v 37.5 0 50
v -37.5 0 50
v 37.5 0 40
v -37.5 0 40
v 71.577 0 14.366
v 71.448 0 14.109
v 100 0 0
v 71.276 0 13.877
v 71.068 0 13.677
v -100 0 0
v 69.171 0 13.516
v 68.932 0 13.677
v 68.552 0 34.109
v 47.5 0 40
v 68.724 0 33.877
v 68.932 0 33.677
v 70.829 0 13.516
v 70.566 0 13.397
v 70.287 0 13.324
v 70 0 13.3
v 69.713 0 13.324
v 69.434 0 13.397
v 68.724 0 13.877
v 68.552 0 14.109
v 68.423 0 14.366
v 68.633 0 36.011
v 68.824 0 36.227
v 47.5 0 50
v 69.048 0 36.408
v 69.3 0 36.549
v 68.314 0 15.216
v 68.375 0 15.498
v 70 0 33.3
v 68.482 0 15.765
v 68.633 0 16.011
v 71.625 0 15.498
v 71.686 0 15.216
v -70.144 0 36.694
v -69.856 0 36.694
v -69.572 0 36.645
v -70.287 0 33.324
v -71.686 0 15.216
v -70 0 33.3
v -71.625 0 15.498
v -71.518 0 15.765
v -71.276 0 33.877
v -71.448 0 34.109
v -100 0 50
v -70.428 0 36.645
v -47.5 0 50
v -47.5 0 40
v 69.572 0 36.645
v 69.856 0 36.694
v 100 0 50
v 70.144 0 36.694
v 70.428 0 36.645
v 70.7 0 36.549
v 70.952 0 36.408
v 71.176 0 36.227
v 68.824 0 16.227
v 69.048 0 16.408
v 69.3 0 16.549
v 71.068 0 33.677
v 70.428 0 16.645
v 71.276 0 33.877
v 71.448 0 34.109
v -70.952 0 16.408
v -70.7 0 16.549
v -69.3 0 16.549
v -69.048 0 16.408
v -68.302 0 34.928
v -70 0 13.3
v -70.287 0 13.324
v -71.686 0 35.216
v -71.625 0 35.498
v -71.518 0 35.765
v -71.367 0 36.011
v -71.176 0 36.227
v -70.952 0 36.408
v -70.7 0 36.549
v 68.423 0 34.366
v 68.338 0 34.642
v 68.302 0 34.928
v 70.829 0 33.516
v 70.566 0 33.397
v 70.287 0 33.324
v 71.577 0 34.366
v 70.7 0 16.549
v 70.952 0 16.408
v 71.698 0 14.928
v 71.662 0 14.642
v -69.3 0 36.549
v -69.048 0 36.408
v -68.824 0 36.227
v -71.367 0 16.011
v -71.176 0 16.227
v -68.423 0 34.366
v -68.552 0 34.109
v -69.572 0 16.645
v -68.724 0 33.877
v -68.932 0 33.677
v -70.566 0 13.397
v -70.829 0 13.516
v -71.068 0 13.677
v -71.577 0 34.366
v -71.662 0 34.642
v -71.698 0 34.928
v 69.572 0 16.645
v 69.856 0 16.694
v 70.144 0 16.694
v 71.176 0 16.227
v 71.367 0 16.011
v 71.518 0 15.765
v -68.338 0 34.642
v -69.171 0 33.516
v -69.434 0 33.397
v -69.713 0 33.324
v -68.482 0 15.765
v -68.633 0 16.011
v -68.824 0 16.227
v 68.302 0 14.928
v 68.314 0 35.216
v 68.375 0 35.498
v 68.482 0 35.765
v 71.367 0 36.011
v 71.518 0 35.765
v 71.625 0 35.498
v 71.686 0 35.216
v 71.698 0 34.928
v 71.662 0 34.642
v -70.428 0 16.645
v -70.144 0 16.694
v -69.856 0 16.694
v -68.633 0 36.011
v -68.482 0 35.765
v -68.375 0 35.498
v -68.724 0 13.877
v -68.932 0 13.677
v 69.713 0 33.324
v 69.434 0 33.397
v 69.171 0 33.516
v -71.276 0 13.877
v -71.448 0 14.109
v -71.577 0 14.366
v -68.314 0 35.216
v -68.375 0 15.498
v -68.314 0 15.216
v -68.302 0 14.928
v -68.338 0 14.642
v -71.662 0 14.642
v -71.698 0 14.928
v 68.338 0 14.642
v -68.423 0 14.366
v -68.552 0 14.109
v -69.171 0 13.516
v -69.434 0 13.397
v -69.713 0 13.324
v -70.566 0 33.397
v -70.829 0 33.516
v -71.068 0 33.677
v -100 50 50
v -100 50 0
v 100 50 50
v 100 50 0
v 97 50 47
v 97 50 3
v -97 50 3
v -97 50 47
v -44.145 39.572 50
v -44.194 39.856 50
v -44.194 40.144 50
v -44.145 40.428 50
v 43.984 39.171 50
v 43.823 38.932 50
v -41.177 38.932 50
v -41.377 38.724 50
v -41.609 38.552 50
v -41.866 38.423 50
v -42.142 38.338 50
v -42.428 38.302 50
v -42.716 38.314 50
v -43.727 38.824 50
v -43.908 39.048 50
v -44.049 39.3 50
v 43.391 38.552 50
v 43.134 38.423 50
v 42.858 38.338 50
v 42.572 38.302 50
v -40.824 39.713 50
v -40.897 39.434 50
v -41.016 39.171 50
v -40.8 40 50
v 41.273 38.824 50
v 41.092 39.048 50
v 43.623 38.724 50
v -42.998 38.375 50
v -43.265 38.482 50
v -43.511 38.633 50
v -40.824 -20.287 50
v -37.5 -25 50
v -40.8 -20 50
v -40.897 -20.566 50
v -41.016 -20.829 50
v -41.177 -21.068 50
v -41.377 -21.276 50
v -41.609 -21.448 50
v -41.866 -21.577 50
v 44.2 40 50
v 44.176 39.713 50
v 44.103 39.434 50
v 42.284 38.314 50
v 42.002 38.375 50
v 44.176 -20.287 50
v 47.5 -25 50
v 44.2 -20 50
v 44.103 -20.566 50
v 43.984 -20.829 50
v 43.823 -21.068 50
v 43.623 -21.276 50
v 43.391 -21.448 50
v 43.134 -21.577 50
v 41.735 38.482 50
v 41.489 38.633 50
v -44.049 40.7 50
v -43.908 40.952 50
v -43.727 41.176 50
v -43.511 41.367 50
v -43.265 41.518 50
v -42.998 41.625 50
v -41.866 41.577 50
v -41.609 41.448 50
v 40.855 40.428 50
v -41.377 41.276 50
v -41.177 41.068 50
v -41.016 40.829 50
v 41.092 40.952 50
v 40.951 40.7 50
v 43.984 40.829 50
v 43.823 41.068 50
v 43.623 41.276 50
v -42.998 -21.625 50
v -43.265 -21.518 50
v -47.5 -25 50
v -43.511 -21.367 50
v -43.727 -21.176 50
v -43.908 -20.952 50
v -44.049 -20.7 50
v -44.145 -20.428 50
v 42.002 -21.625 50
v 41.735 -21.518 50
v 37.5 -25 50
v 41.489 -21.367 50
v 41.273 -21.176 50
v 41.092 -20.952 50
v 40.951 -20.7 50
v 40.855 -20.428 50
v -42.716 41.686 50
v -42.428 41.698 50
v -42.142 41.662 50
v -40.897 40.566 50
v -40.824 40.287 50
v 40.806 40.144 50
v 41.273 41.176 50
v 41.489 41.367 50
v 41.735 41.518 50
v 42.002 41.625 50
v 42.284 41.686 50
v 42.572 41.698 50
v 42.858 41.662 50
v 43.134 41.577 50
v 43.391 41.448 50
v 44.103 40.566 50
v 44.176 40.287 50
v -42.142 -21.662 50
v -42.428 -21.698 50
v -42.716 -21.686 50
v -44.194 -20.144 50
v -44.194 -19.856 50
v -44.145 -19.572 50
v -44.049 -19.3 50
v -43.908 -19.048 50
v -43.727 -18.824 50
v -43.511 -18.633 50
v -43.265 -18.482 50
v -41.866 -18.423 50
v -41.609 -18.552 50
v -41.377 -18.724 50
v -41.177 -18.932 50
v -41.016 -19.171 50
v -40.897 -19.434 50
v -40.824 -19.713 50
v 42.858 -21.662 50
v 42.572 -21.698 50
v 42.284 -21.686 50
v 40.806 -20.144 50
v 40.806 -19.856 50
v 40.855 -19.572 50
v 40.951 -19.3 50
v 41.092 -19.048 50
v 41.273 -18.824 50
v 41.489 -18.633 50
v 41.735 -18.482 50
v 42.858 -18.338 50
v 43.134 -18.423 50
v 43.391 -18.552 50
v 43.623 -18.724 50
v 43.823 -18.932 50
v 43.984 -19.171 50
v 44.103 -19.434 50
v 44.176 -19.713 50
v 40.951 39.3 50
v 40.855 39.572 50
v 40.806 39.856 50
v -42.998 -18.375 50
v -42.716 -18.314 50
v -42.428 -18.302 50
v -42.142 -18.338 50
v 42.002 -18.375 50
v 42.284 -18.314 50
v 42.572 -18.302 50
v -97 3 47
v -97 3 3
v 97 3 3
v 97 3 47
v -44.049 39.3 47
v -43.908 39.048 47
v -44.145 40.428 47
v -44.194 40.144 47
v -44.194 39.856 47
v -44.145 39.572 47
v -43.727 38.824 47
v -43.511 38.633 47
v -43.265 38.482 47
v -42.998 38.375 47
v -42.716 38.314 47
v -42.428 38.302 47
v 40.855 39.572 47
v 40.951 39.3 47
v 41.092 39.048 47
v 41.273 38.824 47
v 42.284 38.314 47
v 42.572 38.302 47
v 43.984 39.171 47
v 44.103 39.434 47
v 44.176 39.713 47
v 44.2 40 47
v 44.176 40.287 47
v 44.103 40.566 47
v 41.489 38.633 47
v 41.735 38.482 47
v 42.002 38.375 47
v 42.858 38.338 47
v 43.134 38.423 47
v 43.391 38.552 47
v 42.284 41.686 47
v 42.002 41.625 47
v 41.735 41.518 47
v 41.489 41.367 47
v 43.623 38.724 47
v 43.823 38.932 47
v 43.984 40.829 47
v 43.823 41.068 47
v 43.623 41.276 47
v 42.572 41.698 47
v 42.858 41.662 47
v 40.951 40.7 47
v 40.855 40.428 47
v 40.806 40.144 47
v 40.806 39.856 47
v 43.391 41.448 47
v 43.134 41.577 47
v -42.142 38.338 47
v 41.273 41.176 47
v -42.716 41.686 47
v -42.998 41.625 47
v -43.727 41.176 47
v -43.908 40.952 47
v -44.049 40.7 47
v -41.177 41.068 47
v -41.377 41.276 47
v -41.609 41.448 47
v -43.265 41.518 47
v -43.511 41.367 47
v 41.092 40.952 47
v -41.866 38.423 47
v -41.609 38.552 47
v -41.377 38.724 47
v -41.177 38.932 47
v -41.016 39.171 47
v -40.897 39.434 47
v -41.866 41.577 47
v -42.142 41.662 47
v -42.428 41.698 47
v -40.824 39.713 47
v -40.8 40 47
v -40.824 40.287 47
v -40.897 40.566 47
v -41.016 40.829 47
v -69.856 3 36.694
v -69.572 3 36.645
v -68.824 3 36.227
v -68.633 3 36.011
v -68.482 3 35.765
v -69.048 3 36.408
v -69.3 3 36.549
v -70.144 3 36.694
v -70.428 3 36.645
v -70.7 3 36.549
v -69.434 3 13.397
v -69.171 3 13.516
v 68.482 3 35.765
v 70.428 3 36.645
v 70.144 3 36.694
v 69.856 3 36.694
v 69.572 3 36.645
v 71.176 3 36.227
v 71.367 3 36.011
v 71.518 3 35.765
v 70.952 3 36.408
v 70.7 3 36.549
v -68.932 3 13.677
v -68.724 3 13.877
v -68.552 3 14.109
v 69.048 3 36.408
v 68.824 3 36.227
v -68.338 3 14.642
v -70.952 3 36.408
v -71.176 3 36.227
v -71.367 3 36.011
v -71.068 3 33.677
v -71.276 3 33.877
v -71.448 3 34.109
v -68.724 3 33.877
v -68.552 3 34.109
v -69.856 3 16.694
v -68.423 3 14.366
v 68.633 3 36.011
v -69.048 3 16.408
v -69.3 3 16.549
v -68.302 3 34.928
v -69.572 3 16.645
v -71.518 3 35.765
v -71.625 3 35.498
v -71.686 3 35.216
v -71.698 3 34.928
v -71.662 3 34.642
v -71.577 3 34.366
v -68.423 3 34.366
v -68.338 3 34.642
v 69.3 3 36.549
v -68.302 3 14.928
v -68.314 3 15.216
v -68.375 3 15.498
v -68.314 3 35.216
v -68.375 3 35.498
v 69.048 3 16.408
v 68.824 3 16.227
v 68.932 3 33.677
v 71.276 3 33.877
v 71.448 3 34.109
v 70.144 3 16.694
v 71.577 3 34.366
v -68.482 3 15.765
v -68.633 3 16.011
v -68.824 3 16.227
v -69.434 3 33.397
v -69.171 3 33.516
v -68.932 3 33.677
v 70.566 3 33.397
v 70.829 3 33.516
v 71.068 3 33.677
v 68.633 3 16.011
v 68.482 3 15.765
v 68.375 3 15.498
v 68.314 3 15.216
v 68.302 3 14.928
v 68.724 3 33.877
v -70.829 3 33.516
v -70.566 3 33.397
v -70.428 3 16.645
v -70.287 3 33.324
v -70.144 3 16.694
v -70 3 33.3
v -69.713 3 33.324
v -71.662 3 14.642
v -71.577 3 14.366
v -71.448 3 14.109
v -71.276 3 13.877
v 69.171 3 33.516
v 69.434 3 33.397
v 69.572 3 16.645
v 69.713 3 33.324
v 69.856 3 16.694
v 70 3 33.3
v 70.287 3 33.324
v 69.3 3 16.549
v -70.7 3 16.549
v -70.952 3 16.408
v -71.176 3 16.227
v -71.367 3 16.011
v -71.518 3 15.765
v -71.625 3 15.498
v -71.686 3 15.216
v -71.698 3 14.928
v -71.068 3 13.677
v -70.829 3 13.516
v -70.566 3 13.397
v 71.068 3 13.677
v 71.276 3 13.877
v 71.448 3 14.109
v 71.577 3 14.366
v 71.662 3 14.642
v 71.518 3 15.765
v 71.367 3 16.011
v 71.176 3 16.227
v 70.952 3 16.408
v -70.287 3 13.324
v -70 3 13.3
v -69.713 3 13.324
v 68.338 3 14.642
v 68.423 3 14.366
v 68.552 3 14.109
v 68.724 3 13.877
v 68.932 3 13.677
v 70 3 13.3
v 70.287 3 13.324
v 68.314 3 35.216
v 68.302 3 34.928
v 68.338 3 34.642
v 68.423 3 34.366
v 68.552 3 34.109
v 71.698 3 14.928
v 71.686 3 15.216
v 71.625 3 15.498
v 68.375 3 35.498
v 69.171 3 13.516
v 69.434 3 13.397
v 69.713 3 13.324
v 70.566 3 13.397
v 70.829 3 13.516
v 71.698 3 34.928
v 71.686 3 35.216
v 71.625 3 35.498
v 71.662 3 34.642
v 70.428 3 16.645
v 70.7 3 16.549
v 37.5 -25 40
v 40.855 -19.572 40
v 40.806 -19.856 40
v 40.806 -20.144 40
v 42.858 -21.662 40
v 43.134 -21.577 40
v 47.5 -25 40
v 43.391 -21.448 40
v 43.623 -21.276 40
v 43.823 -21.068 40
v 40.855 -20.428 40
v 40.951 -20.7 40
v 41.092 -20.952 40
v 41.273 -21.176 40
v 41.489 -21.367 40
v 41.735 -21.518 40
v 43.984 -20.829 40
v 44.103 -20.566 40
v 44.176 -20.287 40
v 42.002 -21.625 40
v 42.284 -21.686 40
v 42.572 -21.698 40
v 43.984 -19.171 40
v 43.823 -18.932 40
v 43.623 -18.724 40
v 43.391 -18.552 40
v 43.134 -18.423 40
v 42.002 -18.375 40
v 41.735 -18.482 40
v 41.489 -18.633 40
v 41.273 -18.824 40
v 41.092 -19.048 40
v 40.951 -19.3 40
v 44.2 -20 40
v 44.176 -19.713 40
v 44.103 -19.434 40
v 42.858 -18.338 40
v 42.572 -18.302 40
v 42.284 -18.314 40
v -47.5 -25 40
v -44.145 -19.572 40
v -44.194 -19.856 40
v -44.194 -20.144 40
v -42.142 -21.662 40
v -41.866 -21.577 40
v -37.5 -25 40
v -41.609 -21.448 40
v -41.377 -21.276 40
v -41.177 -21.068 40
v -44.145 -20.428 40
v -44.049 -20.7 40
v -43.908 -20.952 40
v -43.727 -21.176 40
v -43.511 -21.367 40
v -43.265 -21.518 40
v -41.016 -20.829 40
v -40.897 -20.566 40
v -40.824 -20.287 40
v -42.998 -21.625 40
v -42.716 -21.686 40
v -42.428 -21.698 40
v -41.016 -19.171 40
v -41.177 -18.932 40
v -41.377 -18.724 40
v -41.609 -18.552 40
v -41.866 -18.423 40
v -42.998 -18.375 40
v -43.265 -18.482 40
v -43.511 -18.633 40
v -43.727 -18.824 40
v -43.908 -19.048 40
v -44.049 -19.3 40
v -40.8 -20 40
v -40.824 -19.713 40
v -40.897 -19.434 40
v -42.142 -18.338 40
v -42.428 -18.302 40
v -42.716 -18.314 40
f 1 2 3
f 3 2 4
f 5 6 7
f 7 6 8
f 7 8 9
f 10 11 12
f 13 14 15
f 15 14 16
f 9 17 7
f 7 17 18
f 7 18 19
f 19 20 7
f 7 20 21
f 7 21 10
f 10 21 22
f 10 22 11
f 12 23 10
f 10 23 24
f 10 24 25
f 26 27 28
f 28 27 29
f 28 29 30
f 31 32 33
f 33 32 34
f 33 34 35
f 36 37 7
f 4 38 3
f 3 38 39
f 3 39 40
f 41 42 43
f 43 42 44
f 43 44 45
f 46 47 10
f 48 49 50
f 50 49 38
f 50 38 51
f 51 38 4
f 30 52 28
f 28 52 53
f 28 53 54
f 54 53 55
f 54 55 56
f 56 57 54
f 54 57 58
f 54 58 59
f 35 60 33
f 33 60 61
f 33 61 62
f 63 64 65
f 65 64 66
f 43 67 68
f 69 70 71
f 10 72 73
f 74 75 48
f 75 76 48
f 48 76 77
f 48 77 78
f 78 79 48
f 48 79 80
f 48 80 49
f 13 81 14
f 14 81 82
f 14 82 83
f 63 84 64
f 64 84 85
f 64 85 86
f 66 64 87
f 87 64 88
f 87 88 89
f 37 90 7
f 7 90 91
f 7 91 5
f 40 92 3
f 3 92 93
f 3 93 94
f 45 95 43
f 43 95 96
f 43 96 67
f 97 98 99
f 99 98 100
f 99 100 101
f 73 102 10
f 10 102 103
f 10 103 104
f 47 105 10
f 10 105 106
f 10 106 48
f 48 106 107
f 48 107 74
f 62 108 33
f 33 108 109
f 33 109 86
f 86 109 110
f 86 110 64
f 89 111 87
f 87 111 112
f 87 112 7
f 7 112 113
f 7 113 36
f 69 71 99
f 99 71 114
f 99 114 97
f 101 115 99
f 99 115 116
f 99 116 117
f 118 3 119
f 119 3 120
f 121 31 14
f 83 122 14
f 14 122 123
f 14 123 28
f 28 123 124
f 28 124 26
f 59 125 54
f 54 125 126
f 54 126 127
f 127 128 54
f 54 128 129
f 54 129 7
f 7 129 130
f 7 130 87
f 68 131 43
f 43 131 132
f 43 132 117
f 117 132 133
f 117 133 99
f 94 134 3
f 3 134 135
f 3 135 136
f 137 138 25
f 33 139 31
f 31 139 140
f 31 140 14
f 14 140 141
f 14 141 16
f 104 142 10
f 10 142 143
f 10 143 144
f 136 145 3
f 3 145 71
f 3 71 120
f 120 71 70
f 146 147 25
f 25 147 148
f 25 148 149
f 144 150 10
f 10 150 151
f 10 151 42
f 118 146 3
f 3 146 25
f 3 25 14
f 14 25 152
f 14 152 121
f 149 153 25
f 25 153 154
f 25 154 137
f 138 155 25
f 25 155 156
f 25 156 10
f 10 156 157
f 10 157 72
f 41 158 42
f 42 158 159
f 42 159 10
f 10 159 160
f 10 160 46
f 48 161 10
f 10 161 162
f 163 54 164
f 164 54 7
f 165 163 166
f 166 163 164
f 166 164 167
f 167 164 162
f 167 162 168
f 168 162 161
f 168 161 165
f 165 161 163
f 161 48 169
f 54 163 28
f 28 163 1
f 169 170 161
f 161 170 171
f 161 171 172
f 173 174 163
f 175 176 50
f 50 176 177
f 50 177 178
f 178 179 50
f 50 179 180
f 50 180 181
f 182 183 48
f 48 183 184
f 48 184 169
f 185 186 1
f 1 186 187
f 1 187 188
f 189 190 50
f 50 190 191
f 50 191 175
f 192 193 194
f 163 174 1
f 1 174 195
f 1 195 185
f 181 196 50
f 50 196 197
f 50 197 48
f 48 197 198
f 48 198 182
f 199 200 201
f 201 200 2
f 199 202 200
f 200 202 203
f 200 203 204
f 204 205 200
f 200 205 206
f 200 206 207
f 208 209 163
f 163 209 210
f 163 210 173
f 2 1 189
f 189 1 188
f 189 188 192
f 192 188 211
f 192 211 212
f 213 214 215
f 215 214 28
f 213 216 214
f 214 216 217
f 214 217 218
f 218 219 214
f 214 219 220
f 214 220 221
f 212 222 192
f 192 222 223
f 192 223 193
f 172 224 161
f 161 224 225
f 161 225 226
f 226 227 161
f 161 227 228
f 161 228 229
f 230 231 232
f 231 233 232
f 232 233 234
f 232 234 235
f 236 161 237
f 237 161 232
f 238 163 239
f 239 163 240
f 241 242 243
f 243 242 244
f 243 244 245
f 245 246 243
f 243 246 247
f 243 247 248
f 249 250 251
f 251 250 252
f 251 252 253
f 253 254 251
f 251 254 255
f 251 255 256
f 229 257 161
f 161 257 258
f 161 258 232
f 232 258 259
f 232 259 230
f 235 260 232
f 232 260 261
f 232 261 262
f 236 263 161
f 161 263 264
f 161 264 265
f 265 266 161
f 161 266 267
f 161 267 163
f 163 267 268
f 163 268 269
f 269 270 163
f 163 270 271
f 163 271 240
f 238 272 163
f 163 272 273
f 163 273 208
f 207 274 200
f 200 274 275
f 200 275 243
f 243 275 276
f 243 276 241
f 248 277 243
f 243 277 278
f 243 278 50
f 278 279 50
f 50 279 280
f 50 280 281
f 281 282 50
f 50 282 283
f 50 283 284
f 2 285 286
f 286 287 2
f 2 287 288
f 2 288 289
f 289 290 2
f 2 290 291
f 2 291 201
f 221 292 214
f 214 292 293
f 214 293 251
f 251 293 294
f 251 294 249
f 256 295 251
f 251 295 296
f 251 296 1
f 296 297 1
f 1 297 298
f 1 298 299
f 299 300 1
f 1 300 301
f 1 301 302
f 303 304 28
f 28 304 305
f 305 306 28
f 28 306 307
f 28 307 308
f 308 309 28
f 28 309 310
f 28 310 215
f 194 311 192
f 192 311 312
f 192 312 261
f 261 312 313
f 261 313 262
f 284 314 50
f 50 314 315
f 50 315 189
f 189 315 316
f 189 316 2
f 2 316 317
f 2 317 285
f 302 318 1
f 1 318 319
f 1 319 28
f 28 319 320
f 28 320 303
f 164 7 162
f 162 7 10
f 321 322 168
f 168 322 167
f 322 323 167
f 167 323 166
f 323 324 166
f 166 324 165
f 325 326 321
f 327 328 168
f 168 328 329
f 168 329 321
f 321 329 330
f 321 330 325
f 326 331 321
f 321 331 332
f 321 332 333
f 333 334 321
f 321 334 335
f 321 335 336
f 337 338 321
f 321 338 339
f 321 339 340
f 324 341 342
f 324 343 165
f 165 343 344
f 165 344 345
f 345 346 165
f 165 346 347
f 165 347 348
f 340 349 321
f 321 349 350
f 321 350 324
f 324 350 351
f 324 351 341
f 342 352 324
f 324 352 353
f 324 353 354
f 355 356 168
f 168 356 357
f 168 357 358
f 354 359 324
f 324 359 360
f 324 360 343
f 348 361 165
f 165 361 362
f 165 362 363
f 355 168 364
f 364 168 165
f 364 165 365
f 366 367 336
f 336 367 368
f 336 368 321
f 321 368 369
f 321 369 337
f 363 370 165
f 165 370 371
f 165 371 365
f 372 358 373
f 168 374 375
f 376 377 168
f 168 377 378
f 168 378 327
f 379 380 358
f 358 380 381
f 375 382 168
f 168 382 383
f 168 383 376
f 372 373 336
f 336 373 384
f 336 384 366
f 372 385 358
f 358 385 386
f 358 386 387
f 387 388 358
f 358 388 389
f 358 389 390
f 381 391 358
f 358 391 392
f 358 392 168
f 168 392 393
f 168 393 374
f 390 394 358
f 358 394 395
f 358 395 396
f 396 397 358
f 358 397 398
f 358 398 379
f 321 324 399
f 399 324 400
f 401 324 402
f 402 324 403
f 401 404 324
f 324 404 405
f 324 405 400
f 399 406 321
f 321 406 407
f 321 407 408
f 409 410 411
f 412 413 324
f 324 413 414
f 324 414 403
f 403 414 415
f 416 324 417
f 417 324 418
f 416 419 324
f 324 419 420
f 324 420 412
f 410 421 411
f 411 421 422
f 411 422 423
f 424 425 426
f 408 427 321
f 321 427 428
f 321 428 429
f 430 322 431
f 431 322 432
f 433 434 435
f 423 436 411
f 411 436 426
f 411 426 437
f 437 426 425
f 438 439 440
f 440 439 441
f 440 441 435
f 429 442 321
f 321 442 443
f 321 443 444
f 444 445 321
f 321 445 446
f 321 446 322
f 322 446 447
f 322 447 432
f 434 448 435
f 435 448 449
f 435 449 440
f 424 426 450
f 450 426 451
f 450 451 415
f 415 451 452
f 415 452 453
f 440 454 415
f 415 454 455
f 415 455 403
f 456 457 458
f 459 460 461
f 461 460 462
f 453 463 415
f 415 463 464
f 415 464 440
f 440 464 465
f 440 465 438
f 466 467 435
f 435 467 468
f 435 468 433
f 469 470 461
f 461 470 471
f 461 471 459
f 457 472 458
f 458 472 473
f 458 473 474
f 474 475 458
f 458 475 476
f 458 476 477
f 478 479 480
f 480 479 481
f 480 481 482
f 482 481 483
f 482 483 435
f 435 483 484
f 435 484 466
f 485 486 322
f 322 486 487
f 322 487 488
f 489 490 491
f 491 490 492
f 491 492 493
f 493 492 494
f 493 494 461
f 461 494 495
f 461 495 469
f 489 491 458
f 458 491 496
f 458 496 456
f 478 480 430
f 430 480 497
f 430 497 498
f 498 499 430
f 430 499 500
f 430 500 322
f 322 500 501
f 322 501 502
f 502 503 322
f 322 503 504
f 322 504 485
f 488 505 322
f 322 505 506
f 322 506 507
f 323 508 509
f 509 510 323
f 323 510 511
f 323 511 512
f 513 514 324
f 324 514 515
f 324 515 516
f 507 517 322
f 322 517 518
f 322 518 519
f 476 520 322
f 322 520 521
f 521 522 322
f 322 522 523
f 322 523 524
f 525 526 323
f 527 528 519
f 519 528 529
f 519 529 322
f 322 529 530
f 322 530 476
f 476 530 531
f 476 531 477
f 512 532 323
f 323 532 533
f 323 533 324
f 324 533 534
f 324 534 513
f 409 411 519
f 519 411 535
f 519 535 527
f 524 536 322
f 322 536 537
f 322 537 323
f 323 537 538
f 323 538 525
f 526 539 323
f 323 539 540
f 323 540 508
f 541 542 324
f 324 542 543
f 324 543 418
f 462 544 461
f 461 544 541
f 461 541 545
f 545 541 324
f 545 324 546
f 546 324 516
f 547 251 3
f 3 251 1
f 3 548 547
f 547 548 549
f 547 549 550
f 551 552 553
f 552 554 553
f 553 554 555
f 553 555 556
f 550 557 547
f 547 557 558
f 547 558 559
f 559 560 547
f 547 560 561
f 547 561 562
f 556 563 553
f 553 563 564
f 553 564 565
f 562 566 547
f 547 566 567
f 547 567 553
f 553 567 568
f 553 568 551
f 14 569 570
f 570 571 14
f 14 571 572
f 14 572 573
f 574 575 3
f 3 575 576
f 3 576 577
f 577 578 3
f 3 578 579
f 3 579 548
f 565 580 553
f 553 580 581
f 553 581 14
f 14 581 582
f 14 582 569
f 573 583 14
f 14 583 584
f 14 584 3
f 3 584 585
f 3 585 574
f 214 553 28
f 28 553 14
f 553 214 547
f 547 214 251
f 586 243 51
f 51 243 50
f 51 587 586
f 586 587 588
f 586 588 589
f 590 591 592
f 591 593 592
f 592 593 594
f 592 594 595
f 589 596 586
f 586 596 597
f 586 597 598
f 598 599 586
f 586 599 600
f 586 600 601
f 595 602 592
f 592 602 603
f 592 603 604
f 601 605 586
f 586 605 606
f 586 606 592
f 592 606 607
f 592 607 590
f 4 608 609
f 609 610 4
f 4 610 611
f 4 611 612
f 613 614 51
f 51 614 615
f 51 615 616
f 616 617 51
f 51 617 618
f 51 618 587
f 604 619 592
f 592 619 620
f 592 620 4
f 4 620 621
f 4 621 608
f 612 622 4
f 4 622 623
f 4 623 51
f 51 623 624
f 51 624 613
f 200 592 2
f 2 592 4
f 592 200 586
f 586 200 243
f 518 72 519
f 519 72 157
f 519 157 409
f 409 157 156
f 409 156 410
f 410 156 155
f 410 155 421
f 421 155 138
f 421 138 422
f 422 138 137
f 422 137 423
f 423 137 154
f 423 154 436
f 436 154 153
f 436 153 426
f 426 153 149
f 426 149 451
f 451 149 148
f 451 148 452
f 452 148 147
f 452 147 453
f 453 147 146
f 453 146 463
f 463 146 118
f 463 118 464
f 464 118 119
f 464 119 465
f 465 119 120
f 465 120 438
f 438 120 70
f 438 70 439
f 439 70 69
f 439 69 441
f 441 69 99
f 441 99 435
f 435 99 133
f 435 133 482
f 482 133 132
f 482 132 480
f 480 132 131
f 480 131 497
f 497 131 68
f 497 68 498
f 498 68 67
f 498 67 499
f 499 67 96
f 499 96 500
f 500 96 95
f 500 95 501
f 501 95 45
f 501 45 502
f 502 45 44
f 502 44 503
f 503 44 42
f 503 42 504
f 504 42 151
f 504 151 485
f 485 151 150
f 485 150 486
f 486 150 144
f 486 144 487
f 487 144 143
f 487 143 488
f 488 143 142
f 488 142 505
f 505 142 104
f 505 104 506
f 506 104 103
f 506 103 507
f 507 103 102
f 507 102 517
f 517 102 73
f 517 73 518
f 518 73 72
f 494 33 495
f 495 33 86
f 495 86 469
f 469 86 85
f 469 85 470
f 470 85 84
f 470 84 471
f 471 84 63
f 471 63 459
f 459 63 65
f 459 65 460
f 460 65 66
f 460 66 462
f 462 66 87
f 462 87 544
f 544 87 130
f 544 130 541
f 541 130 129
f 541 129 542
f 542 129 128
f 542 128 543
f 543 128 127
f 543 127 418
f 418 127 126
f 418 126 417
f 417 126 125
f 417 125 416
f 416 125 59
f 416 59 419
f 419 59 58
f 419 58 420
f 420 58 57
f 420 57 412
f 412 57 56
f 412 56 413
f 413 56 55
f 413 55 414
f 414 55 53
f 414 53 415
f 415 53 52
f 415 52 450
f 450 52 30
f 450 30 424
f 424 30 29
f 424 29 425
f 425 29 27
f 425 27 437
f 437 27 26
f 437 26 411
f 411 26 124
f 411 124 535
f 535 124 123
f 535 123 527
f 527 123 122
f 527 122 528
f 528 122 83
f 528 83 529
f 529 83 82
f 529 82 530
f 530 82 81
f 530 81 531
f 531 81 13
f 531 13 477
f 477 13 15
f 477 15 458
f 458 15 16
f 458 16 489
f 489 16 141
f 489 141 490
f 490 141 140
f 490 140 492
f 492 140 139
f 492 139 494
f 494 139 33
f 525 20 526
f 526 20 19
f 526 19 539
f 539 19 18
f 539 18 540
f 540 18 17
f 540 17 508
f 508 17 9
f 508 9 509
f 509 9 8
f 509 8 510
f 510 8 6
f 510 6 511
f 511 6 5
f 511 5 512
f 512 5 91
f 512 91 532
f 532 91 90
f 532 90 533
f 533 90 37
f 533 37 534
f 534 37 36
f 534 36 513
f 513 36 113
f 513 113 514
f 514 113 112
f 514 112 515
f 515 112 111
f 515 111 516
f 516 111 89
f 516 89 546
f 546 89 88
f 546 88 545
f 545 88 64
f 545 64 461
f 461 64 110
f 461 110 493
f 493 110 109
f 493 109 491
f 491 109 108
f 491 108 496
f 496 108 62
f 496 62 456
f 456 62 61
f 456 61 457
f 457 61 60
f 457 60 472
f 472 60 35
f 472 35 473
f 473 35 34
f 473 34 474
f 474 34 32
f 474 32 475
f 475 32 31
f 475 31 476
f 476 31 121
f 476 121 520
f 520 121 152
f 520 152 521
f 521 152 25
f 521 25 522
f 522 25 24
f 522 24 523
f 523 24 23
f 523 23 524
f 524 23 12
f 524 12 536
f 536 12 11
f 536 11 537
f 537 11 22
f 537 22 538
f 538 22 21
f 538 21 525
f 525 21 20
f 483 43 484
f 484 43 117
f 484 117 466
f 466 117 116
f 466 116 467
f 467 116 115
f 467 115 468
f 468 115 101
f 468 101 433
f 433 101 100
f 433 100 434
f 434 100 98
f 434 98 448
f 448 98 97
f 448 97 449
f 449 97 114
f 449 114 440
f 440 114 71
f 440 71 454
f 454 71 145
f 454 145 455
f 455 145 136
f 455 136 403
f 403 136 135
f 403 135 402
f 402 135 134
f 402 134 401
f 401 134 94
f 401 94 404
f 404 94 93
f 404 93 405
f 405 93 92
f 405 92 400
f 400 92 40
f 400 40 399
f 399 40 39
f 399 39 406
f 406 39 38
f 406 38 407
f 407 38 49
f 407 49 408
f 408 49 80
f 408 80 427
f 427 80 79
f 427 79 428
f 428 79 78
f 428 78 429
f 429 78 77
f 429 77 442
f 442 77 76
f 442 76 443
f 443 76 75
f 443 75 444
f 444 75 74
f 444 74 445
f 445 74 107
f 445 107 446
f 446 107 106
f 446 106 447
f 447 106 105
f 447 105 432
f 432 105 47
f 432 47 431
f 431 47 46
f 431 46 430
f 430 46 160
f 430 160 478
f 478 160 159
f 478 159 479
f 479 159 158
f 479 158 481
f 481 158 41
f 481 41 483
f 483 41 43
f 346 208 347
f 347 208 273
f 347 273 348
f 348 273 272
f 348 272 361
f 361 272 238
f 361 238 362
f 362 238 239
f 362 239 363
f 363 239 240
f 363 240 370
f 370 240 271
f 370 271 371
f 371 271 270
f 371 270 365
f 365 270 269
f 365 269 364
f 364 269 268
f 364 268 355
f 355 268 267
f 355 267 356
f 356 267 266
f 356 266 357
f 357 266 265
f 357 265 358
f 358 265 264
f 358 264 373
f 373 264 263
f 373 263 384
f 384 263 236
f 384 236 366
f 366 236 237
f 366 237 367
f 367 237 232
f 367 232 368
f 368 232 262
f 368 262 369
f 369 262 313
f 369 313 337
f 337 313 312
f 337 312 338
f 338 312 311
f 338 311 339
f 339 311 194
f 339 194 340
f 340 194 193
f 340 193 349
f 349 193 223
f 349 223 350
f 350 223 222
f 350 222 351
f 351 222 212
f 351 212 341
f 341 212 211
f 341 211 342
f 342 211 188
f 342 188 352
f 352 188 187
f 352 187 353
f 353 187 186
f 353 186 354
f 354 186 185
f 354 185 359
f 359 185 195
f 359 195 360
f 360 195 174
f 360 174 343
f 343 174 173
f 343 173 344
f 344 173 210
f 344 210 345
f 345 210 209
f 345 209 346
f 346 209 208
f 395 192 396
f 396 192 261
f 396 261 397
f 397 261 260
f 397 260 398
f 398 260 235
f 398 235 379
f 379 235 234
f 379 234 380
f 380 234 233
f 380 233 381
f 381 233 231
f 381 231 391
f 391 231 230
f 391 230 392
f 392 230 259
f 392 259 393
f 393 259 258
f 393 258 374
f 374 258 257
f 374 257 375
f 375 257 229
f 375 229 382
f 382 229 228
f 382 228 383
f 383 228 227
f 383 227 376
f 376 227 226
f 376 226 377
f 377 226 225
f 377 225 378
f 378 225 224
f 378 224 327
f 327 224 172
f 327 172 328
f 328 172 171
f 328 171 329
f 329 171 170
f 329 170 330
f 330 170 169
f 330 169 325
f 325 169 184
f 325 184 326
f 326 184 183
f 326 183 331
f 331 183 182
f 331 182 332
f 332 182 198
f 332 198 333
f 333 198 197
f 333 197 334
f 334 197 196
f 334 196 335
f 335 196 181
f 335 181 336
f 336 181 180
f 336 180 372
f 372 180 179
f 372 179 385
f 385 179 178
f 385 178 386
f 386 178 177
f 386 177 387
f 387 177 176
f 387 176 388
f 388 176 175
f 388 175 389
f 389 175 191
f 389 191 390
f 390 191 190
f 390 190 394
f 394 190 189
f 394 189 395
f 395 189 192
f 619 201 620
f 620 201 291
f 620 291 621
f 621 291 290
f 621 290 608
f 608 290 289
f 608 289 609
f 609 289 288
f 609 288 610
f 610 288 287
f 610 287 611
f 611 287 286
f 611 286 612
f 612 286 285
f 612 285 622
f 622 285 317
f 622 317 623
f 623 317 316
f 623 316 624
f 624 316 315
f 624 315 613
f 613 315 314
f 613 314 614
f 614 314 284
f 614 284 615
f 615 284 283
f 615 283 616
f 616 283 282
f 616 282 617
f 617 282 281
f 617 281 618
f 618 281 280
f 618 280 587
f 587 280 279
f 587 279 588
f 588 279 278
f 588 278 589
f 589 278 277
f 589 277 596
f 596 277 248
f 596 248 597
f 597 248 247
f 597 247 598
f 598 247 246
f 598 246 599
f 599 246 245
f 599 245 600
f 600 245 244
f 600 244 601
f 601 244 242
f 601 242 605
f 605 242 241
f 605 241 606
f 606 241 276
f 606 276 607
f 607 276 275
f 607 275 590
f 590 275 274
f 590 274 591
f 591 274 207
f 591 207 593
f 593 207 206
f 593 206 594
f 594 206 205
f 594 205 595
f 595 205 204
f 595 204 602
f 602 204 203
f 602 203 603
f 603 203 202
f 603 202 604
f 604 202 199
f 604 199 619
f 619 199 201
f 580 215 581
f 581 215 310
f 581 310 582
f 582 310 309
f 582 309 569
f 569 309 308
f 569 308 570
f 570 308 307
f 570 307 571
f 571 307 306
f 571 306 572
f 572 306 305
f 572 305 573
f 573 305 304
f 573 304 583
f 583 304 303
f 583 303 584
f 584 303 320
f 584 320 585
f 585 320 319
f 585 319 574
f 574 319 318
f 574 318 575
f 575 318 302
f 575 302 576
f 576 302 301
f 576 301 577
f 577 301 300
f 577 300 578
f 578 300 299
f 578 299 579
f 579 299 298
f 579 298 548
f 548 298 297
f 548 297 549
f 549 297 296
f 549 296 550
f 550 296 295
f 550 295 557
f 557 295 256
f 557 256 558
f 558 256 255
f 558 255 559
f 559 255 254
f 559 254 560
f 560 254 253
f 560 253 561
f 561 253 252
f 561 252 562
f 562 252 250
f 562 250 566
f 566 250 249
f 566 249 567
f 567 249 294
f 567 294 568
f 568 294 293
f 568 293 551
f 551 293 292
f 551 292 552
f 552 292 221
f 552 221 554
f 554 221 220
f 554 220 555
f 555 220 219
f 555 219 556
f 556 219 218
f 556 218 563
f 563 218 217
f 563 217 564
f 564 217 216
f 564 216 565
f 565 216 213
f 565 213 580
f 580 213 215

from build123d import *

# Parameters (mm, degrees)
BOX_FOOTPRINT_200_X_50_MM_W                     = 200
BOX_FOOTPRINT_200_X_50_MM_H                     = 50
BOX_HEIGHT_50_MM_DEPTH                          = 50
REAR_OPENING_194_X_44_MM_W                      = 194
REAR_OPENING_194_X_44_MM_H                      = 44
REAR_CAVITY_WALL_3_MM_DEPTH                     = 47
TWO_SQUARE_ARMS_10_X_10_PITCH_85_MM_W           = 10
TWO_SQUARE_ARMS_10_X_10_PITCH_85_MM_H           = 10
FORWARD_SQUARE_ARMS_25_MM_DEPTH                 = 25
TEMPORARY_CHASSIS_HOLES_140_X_20_MM_R           = 1.7
F_4X_M3_CLEARANCE_DIAMETER_3_4_MM_DEPTH         = 3
PCB_REAR_PAIR_PITCH_85_MM_R                     = 1.7
F_2X_ROOF_HOLES_DIAMETER_3_4_MM_DEPTH           = 3
PCB_FRONT_PAIR_ROW_SPACING_60_MM_R              = 1.7
F_2X_ARM_HOLES_THROUGH_TOP_AND_BOTTOM_3_4_DEPTH = 10


with BuildPart() as part:
    # Box footprint 200 x 50 mm → Box height 50 mm (new body)
    with BuildSketch(Plane.XY):
        with Locations((0, 25)):
            Rectangle(BOX_FOOTPRINT_200_X_50_MM_W, BOX_FOOTPRINT_200_X_50_MM_H)
    extrude(amount=BOX_HEIGHT_50_MM_DEPTH)

    # Rear opening 194 x 44 mm → Rear cavity - wall 3 mm (cut)
    with BuildSketch(Plane(origin=(0, 50, 0), x_dir=(1, 0, 0), z_dir=(0, 1, 0))):
        with Locations((0, -25)):
            Rectangle(REAR_OPENING_194_X_44_MM_W, REAR_OPENING_194_X_44_MM_H)
    extrude(amount=-REAR_CAVITY_WALL_3_MM_DEPTH, mode=Mode.SUBTRACT)

    # Two square arms 10 x 10 - pitch 85 mm → Forward square arms 25 mm (add)
    with BuildSketch(Plane.XZ):
        with Locations((-42.5, 45)):
            Rectangle(TWO_SQUARE_ARMS_10_X_10_PITCH_85_MM_W, TWO_SQUARE_ARMS_10_X_10_PITCH_85_MM_H)
        with Locations((42.5, 45)):
            Rectangle(TWO_SQUARE_ARMS_10_X_10_PITCH_85_MM_W, TWO_SQUARE_ARMS_10_X_10_PITCH_85_MM_H)
    extrude(amount=FORWARD_SQUARE_ARMS_25_MM_DEPTH)

    # Temporary chassis holes - 140 x 20 mm → 4x M3 clearance diameter 3.4 mm (cut)
    with BuildSketch(Plane.XZ):
        with Locations(Location((-70, 15, 0), (0, 0, 270))):
            Circle(TEMPORARY_CHASSIS_HOLES_140_X_20_MM_R)
        with Locations(Location((-70, 35, 0), (0, 0, 270))):
            Circle(TEMPORARY_CHASSIS_HOLES_140_X_20_MM_R)
        with Locations(Location((70, 15, 0), (0, 0, 270))):
            Circle(TEMPORARY_CHASSIS_HOLES_140_X_20_MM_R)
        with Locations(Location((70, 35, 0), (0, 0, 270))):
            Circle(TEMPORARY_CHASSIS_HOLES_140_X_20_MM_R)
    extrude(amount=-F_4X_M3_CLEARANCE_DIAMETER_3_4_MM_DEPTH, mode=Mode.SUBTRACT)

    # PCB rear pair - pitch 85 mm → 2x roof holes diameter 3.4 mm (cut)
    with BuildSketch(Plane.XY.offset(50)):
        with Locations((-42.5, 40)):
            Circle(PCB_REAR_PAIR_PITCH_85_MM_R)
        with Locations((42.5, 40)):
            Circle(PCB_REAR_PAIR_PITCH_85_MM_R)
    extrude(amount=-F_2X_ROOF_HOLES_DIAMETER_3_4_MM_DEPTH, mode=Mode.SUBTRACT)

    # PCB front pair - row spacing 60 mm → 2x arm holes through top and bottom 3.4 mm (cut)
    with BuildSketch(Plane.XY.offset(50)):
        with Locations((-42.5, -20)):
            Circle(PCB_FRONT_PAIR_ROW_SPACING_60_MM_R)
        with Locations((42.5, -20)):
            Circle(PCB_FRONT_PAIR_ROW_SPACING_60_MM_R)
    extrude(amount=-F_2X_ARM_HOLES_THROUGH_TOP_AND_BOTTOM_3_4_DEPTH, mode=Mode.SUBTRACT)


solid = part.part
